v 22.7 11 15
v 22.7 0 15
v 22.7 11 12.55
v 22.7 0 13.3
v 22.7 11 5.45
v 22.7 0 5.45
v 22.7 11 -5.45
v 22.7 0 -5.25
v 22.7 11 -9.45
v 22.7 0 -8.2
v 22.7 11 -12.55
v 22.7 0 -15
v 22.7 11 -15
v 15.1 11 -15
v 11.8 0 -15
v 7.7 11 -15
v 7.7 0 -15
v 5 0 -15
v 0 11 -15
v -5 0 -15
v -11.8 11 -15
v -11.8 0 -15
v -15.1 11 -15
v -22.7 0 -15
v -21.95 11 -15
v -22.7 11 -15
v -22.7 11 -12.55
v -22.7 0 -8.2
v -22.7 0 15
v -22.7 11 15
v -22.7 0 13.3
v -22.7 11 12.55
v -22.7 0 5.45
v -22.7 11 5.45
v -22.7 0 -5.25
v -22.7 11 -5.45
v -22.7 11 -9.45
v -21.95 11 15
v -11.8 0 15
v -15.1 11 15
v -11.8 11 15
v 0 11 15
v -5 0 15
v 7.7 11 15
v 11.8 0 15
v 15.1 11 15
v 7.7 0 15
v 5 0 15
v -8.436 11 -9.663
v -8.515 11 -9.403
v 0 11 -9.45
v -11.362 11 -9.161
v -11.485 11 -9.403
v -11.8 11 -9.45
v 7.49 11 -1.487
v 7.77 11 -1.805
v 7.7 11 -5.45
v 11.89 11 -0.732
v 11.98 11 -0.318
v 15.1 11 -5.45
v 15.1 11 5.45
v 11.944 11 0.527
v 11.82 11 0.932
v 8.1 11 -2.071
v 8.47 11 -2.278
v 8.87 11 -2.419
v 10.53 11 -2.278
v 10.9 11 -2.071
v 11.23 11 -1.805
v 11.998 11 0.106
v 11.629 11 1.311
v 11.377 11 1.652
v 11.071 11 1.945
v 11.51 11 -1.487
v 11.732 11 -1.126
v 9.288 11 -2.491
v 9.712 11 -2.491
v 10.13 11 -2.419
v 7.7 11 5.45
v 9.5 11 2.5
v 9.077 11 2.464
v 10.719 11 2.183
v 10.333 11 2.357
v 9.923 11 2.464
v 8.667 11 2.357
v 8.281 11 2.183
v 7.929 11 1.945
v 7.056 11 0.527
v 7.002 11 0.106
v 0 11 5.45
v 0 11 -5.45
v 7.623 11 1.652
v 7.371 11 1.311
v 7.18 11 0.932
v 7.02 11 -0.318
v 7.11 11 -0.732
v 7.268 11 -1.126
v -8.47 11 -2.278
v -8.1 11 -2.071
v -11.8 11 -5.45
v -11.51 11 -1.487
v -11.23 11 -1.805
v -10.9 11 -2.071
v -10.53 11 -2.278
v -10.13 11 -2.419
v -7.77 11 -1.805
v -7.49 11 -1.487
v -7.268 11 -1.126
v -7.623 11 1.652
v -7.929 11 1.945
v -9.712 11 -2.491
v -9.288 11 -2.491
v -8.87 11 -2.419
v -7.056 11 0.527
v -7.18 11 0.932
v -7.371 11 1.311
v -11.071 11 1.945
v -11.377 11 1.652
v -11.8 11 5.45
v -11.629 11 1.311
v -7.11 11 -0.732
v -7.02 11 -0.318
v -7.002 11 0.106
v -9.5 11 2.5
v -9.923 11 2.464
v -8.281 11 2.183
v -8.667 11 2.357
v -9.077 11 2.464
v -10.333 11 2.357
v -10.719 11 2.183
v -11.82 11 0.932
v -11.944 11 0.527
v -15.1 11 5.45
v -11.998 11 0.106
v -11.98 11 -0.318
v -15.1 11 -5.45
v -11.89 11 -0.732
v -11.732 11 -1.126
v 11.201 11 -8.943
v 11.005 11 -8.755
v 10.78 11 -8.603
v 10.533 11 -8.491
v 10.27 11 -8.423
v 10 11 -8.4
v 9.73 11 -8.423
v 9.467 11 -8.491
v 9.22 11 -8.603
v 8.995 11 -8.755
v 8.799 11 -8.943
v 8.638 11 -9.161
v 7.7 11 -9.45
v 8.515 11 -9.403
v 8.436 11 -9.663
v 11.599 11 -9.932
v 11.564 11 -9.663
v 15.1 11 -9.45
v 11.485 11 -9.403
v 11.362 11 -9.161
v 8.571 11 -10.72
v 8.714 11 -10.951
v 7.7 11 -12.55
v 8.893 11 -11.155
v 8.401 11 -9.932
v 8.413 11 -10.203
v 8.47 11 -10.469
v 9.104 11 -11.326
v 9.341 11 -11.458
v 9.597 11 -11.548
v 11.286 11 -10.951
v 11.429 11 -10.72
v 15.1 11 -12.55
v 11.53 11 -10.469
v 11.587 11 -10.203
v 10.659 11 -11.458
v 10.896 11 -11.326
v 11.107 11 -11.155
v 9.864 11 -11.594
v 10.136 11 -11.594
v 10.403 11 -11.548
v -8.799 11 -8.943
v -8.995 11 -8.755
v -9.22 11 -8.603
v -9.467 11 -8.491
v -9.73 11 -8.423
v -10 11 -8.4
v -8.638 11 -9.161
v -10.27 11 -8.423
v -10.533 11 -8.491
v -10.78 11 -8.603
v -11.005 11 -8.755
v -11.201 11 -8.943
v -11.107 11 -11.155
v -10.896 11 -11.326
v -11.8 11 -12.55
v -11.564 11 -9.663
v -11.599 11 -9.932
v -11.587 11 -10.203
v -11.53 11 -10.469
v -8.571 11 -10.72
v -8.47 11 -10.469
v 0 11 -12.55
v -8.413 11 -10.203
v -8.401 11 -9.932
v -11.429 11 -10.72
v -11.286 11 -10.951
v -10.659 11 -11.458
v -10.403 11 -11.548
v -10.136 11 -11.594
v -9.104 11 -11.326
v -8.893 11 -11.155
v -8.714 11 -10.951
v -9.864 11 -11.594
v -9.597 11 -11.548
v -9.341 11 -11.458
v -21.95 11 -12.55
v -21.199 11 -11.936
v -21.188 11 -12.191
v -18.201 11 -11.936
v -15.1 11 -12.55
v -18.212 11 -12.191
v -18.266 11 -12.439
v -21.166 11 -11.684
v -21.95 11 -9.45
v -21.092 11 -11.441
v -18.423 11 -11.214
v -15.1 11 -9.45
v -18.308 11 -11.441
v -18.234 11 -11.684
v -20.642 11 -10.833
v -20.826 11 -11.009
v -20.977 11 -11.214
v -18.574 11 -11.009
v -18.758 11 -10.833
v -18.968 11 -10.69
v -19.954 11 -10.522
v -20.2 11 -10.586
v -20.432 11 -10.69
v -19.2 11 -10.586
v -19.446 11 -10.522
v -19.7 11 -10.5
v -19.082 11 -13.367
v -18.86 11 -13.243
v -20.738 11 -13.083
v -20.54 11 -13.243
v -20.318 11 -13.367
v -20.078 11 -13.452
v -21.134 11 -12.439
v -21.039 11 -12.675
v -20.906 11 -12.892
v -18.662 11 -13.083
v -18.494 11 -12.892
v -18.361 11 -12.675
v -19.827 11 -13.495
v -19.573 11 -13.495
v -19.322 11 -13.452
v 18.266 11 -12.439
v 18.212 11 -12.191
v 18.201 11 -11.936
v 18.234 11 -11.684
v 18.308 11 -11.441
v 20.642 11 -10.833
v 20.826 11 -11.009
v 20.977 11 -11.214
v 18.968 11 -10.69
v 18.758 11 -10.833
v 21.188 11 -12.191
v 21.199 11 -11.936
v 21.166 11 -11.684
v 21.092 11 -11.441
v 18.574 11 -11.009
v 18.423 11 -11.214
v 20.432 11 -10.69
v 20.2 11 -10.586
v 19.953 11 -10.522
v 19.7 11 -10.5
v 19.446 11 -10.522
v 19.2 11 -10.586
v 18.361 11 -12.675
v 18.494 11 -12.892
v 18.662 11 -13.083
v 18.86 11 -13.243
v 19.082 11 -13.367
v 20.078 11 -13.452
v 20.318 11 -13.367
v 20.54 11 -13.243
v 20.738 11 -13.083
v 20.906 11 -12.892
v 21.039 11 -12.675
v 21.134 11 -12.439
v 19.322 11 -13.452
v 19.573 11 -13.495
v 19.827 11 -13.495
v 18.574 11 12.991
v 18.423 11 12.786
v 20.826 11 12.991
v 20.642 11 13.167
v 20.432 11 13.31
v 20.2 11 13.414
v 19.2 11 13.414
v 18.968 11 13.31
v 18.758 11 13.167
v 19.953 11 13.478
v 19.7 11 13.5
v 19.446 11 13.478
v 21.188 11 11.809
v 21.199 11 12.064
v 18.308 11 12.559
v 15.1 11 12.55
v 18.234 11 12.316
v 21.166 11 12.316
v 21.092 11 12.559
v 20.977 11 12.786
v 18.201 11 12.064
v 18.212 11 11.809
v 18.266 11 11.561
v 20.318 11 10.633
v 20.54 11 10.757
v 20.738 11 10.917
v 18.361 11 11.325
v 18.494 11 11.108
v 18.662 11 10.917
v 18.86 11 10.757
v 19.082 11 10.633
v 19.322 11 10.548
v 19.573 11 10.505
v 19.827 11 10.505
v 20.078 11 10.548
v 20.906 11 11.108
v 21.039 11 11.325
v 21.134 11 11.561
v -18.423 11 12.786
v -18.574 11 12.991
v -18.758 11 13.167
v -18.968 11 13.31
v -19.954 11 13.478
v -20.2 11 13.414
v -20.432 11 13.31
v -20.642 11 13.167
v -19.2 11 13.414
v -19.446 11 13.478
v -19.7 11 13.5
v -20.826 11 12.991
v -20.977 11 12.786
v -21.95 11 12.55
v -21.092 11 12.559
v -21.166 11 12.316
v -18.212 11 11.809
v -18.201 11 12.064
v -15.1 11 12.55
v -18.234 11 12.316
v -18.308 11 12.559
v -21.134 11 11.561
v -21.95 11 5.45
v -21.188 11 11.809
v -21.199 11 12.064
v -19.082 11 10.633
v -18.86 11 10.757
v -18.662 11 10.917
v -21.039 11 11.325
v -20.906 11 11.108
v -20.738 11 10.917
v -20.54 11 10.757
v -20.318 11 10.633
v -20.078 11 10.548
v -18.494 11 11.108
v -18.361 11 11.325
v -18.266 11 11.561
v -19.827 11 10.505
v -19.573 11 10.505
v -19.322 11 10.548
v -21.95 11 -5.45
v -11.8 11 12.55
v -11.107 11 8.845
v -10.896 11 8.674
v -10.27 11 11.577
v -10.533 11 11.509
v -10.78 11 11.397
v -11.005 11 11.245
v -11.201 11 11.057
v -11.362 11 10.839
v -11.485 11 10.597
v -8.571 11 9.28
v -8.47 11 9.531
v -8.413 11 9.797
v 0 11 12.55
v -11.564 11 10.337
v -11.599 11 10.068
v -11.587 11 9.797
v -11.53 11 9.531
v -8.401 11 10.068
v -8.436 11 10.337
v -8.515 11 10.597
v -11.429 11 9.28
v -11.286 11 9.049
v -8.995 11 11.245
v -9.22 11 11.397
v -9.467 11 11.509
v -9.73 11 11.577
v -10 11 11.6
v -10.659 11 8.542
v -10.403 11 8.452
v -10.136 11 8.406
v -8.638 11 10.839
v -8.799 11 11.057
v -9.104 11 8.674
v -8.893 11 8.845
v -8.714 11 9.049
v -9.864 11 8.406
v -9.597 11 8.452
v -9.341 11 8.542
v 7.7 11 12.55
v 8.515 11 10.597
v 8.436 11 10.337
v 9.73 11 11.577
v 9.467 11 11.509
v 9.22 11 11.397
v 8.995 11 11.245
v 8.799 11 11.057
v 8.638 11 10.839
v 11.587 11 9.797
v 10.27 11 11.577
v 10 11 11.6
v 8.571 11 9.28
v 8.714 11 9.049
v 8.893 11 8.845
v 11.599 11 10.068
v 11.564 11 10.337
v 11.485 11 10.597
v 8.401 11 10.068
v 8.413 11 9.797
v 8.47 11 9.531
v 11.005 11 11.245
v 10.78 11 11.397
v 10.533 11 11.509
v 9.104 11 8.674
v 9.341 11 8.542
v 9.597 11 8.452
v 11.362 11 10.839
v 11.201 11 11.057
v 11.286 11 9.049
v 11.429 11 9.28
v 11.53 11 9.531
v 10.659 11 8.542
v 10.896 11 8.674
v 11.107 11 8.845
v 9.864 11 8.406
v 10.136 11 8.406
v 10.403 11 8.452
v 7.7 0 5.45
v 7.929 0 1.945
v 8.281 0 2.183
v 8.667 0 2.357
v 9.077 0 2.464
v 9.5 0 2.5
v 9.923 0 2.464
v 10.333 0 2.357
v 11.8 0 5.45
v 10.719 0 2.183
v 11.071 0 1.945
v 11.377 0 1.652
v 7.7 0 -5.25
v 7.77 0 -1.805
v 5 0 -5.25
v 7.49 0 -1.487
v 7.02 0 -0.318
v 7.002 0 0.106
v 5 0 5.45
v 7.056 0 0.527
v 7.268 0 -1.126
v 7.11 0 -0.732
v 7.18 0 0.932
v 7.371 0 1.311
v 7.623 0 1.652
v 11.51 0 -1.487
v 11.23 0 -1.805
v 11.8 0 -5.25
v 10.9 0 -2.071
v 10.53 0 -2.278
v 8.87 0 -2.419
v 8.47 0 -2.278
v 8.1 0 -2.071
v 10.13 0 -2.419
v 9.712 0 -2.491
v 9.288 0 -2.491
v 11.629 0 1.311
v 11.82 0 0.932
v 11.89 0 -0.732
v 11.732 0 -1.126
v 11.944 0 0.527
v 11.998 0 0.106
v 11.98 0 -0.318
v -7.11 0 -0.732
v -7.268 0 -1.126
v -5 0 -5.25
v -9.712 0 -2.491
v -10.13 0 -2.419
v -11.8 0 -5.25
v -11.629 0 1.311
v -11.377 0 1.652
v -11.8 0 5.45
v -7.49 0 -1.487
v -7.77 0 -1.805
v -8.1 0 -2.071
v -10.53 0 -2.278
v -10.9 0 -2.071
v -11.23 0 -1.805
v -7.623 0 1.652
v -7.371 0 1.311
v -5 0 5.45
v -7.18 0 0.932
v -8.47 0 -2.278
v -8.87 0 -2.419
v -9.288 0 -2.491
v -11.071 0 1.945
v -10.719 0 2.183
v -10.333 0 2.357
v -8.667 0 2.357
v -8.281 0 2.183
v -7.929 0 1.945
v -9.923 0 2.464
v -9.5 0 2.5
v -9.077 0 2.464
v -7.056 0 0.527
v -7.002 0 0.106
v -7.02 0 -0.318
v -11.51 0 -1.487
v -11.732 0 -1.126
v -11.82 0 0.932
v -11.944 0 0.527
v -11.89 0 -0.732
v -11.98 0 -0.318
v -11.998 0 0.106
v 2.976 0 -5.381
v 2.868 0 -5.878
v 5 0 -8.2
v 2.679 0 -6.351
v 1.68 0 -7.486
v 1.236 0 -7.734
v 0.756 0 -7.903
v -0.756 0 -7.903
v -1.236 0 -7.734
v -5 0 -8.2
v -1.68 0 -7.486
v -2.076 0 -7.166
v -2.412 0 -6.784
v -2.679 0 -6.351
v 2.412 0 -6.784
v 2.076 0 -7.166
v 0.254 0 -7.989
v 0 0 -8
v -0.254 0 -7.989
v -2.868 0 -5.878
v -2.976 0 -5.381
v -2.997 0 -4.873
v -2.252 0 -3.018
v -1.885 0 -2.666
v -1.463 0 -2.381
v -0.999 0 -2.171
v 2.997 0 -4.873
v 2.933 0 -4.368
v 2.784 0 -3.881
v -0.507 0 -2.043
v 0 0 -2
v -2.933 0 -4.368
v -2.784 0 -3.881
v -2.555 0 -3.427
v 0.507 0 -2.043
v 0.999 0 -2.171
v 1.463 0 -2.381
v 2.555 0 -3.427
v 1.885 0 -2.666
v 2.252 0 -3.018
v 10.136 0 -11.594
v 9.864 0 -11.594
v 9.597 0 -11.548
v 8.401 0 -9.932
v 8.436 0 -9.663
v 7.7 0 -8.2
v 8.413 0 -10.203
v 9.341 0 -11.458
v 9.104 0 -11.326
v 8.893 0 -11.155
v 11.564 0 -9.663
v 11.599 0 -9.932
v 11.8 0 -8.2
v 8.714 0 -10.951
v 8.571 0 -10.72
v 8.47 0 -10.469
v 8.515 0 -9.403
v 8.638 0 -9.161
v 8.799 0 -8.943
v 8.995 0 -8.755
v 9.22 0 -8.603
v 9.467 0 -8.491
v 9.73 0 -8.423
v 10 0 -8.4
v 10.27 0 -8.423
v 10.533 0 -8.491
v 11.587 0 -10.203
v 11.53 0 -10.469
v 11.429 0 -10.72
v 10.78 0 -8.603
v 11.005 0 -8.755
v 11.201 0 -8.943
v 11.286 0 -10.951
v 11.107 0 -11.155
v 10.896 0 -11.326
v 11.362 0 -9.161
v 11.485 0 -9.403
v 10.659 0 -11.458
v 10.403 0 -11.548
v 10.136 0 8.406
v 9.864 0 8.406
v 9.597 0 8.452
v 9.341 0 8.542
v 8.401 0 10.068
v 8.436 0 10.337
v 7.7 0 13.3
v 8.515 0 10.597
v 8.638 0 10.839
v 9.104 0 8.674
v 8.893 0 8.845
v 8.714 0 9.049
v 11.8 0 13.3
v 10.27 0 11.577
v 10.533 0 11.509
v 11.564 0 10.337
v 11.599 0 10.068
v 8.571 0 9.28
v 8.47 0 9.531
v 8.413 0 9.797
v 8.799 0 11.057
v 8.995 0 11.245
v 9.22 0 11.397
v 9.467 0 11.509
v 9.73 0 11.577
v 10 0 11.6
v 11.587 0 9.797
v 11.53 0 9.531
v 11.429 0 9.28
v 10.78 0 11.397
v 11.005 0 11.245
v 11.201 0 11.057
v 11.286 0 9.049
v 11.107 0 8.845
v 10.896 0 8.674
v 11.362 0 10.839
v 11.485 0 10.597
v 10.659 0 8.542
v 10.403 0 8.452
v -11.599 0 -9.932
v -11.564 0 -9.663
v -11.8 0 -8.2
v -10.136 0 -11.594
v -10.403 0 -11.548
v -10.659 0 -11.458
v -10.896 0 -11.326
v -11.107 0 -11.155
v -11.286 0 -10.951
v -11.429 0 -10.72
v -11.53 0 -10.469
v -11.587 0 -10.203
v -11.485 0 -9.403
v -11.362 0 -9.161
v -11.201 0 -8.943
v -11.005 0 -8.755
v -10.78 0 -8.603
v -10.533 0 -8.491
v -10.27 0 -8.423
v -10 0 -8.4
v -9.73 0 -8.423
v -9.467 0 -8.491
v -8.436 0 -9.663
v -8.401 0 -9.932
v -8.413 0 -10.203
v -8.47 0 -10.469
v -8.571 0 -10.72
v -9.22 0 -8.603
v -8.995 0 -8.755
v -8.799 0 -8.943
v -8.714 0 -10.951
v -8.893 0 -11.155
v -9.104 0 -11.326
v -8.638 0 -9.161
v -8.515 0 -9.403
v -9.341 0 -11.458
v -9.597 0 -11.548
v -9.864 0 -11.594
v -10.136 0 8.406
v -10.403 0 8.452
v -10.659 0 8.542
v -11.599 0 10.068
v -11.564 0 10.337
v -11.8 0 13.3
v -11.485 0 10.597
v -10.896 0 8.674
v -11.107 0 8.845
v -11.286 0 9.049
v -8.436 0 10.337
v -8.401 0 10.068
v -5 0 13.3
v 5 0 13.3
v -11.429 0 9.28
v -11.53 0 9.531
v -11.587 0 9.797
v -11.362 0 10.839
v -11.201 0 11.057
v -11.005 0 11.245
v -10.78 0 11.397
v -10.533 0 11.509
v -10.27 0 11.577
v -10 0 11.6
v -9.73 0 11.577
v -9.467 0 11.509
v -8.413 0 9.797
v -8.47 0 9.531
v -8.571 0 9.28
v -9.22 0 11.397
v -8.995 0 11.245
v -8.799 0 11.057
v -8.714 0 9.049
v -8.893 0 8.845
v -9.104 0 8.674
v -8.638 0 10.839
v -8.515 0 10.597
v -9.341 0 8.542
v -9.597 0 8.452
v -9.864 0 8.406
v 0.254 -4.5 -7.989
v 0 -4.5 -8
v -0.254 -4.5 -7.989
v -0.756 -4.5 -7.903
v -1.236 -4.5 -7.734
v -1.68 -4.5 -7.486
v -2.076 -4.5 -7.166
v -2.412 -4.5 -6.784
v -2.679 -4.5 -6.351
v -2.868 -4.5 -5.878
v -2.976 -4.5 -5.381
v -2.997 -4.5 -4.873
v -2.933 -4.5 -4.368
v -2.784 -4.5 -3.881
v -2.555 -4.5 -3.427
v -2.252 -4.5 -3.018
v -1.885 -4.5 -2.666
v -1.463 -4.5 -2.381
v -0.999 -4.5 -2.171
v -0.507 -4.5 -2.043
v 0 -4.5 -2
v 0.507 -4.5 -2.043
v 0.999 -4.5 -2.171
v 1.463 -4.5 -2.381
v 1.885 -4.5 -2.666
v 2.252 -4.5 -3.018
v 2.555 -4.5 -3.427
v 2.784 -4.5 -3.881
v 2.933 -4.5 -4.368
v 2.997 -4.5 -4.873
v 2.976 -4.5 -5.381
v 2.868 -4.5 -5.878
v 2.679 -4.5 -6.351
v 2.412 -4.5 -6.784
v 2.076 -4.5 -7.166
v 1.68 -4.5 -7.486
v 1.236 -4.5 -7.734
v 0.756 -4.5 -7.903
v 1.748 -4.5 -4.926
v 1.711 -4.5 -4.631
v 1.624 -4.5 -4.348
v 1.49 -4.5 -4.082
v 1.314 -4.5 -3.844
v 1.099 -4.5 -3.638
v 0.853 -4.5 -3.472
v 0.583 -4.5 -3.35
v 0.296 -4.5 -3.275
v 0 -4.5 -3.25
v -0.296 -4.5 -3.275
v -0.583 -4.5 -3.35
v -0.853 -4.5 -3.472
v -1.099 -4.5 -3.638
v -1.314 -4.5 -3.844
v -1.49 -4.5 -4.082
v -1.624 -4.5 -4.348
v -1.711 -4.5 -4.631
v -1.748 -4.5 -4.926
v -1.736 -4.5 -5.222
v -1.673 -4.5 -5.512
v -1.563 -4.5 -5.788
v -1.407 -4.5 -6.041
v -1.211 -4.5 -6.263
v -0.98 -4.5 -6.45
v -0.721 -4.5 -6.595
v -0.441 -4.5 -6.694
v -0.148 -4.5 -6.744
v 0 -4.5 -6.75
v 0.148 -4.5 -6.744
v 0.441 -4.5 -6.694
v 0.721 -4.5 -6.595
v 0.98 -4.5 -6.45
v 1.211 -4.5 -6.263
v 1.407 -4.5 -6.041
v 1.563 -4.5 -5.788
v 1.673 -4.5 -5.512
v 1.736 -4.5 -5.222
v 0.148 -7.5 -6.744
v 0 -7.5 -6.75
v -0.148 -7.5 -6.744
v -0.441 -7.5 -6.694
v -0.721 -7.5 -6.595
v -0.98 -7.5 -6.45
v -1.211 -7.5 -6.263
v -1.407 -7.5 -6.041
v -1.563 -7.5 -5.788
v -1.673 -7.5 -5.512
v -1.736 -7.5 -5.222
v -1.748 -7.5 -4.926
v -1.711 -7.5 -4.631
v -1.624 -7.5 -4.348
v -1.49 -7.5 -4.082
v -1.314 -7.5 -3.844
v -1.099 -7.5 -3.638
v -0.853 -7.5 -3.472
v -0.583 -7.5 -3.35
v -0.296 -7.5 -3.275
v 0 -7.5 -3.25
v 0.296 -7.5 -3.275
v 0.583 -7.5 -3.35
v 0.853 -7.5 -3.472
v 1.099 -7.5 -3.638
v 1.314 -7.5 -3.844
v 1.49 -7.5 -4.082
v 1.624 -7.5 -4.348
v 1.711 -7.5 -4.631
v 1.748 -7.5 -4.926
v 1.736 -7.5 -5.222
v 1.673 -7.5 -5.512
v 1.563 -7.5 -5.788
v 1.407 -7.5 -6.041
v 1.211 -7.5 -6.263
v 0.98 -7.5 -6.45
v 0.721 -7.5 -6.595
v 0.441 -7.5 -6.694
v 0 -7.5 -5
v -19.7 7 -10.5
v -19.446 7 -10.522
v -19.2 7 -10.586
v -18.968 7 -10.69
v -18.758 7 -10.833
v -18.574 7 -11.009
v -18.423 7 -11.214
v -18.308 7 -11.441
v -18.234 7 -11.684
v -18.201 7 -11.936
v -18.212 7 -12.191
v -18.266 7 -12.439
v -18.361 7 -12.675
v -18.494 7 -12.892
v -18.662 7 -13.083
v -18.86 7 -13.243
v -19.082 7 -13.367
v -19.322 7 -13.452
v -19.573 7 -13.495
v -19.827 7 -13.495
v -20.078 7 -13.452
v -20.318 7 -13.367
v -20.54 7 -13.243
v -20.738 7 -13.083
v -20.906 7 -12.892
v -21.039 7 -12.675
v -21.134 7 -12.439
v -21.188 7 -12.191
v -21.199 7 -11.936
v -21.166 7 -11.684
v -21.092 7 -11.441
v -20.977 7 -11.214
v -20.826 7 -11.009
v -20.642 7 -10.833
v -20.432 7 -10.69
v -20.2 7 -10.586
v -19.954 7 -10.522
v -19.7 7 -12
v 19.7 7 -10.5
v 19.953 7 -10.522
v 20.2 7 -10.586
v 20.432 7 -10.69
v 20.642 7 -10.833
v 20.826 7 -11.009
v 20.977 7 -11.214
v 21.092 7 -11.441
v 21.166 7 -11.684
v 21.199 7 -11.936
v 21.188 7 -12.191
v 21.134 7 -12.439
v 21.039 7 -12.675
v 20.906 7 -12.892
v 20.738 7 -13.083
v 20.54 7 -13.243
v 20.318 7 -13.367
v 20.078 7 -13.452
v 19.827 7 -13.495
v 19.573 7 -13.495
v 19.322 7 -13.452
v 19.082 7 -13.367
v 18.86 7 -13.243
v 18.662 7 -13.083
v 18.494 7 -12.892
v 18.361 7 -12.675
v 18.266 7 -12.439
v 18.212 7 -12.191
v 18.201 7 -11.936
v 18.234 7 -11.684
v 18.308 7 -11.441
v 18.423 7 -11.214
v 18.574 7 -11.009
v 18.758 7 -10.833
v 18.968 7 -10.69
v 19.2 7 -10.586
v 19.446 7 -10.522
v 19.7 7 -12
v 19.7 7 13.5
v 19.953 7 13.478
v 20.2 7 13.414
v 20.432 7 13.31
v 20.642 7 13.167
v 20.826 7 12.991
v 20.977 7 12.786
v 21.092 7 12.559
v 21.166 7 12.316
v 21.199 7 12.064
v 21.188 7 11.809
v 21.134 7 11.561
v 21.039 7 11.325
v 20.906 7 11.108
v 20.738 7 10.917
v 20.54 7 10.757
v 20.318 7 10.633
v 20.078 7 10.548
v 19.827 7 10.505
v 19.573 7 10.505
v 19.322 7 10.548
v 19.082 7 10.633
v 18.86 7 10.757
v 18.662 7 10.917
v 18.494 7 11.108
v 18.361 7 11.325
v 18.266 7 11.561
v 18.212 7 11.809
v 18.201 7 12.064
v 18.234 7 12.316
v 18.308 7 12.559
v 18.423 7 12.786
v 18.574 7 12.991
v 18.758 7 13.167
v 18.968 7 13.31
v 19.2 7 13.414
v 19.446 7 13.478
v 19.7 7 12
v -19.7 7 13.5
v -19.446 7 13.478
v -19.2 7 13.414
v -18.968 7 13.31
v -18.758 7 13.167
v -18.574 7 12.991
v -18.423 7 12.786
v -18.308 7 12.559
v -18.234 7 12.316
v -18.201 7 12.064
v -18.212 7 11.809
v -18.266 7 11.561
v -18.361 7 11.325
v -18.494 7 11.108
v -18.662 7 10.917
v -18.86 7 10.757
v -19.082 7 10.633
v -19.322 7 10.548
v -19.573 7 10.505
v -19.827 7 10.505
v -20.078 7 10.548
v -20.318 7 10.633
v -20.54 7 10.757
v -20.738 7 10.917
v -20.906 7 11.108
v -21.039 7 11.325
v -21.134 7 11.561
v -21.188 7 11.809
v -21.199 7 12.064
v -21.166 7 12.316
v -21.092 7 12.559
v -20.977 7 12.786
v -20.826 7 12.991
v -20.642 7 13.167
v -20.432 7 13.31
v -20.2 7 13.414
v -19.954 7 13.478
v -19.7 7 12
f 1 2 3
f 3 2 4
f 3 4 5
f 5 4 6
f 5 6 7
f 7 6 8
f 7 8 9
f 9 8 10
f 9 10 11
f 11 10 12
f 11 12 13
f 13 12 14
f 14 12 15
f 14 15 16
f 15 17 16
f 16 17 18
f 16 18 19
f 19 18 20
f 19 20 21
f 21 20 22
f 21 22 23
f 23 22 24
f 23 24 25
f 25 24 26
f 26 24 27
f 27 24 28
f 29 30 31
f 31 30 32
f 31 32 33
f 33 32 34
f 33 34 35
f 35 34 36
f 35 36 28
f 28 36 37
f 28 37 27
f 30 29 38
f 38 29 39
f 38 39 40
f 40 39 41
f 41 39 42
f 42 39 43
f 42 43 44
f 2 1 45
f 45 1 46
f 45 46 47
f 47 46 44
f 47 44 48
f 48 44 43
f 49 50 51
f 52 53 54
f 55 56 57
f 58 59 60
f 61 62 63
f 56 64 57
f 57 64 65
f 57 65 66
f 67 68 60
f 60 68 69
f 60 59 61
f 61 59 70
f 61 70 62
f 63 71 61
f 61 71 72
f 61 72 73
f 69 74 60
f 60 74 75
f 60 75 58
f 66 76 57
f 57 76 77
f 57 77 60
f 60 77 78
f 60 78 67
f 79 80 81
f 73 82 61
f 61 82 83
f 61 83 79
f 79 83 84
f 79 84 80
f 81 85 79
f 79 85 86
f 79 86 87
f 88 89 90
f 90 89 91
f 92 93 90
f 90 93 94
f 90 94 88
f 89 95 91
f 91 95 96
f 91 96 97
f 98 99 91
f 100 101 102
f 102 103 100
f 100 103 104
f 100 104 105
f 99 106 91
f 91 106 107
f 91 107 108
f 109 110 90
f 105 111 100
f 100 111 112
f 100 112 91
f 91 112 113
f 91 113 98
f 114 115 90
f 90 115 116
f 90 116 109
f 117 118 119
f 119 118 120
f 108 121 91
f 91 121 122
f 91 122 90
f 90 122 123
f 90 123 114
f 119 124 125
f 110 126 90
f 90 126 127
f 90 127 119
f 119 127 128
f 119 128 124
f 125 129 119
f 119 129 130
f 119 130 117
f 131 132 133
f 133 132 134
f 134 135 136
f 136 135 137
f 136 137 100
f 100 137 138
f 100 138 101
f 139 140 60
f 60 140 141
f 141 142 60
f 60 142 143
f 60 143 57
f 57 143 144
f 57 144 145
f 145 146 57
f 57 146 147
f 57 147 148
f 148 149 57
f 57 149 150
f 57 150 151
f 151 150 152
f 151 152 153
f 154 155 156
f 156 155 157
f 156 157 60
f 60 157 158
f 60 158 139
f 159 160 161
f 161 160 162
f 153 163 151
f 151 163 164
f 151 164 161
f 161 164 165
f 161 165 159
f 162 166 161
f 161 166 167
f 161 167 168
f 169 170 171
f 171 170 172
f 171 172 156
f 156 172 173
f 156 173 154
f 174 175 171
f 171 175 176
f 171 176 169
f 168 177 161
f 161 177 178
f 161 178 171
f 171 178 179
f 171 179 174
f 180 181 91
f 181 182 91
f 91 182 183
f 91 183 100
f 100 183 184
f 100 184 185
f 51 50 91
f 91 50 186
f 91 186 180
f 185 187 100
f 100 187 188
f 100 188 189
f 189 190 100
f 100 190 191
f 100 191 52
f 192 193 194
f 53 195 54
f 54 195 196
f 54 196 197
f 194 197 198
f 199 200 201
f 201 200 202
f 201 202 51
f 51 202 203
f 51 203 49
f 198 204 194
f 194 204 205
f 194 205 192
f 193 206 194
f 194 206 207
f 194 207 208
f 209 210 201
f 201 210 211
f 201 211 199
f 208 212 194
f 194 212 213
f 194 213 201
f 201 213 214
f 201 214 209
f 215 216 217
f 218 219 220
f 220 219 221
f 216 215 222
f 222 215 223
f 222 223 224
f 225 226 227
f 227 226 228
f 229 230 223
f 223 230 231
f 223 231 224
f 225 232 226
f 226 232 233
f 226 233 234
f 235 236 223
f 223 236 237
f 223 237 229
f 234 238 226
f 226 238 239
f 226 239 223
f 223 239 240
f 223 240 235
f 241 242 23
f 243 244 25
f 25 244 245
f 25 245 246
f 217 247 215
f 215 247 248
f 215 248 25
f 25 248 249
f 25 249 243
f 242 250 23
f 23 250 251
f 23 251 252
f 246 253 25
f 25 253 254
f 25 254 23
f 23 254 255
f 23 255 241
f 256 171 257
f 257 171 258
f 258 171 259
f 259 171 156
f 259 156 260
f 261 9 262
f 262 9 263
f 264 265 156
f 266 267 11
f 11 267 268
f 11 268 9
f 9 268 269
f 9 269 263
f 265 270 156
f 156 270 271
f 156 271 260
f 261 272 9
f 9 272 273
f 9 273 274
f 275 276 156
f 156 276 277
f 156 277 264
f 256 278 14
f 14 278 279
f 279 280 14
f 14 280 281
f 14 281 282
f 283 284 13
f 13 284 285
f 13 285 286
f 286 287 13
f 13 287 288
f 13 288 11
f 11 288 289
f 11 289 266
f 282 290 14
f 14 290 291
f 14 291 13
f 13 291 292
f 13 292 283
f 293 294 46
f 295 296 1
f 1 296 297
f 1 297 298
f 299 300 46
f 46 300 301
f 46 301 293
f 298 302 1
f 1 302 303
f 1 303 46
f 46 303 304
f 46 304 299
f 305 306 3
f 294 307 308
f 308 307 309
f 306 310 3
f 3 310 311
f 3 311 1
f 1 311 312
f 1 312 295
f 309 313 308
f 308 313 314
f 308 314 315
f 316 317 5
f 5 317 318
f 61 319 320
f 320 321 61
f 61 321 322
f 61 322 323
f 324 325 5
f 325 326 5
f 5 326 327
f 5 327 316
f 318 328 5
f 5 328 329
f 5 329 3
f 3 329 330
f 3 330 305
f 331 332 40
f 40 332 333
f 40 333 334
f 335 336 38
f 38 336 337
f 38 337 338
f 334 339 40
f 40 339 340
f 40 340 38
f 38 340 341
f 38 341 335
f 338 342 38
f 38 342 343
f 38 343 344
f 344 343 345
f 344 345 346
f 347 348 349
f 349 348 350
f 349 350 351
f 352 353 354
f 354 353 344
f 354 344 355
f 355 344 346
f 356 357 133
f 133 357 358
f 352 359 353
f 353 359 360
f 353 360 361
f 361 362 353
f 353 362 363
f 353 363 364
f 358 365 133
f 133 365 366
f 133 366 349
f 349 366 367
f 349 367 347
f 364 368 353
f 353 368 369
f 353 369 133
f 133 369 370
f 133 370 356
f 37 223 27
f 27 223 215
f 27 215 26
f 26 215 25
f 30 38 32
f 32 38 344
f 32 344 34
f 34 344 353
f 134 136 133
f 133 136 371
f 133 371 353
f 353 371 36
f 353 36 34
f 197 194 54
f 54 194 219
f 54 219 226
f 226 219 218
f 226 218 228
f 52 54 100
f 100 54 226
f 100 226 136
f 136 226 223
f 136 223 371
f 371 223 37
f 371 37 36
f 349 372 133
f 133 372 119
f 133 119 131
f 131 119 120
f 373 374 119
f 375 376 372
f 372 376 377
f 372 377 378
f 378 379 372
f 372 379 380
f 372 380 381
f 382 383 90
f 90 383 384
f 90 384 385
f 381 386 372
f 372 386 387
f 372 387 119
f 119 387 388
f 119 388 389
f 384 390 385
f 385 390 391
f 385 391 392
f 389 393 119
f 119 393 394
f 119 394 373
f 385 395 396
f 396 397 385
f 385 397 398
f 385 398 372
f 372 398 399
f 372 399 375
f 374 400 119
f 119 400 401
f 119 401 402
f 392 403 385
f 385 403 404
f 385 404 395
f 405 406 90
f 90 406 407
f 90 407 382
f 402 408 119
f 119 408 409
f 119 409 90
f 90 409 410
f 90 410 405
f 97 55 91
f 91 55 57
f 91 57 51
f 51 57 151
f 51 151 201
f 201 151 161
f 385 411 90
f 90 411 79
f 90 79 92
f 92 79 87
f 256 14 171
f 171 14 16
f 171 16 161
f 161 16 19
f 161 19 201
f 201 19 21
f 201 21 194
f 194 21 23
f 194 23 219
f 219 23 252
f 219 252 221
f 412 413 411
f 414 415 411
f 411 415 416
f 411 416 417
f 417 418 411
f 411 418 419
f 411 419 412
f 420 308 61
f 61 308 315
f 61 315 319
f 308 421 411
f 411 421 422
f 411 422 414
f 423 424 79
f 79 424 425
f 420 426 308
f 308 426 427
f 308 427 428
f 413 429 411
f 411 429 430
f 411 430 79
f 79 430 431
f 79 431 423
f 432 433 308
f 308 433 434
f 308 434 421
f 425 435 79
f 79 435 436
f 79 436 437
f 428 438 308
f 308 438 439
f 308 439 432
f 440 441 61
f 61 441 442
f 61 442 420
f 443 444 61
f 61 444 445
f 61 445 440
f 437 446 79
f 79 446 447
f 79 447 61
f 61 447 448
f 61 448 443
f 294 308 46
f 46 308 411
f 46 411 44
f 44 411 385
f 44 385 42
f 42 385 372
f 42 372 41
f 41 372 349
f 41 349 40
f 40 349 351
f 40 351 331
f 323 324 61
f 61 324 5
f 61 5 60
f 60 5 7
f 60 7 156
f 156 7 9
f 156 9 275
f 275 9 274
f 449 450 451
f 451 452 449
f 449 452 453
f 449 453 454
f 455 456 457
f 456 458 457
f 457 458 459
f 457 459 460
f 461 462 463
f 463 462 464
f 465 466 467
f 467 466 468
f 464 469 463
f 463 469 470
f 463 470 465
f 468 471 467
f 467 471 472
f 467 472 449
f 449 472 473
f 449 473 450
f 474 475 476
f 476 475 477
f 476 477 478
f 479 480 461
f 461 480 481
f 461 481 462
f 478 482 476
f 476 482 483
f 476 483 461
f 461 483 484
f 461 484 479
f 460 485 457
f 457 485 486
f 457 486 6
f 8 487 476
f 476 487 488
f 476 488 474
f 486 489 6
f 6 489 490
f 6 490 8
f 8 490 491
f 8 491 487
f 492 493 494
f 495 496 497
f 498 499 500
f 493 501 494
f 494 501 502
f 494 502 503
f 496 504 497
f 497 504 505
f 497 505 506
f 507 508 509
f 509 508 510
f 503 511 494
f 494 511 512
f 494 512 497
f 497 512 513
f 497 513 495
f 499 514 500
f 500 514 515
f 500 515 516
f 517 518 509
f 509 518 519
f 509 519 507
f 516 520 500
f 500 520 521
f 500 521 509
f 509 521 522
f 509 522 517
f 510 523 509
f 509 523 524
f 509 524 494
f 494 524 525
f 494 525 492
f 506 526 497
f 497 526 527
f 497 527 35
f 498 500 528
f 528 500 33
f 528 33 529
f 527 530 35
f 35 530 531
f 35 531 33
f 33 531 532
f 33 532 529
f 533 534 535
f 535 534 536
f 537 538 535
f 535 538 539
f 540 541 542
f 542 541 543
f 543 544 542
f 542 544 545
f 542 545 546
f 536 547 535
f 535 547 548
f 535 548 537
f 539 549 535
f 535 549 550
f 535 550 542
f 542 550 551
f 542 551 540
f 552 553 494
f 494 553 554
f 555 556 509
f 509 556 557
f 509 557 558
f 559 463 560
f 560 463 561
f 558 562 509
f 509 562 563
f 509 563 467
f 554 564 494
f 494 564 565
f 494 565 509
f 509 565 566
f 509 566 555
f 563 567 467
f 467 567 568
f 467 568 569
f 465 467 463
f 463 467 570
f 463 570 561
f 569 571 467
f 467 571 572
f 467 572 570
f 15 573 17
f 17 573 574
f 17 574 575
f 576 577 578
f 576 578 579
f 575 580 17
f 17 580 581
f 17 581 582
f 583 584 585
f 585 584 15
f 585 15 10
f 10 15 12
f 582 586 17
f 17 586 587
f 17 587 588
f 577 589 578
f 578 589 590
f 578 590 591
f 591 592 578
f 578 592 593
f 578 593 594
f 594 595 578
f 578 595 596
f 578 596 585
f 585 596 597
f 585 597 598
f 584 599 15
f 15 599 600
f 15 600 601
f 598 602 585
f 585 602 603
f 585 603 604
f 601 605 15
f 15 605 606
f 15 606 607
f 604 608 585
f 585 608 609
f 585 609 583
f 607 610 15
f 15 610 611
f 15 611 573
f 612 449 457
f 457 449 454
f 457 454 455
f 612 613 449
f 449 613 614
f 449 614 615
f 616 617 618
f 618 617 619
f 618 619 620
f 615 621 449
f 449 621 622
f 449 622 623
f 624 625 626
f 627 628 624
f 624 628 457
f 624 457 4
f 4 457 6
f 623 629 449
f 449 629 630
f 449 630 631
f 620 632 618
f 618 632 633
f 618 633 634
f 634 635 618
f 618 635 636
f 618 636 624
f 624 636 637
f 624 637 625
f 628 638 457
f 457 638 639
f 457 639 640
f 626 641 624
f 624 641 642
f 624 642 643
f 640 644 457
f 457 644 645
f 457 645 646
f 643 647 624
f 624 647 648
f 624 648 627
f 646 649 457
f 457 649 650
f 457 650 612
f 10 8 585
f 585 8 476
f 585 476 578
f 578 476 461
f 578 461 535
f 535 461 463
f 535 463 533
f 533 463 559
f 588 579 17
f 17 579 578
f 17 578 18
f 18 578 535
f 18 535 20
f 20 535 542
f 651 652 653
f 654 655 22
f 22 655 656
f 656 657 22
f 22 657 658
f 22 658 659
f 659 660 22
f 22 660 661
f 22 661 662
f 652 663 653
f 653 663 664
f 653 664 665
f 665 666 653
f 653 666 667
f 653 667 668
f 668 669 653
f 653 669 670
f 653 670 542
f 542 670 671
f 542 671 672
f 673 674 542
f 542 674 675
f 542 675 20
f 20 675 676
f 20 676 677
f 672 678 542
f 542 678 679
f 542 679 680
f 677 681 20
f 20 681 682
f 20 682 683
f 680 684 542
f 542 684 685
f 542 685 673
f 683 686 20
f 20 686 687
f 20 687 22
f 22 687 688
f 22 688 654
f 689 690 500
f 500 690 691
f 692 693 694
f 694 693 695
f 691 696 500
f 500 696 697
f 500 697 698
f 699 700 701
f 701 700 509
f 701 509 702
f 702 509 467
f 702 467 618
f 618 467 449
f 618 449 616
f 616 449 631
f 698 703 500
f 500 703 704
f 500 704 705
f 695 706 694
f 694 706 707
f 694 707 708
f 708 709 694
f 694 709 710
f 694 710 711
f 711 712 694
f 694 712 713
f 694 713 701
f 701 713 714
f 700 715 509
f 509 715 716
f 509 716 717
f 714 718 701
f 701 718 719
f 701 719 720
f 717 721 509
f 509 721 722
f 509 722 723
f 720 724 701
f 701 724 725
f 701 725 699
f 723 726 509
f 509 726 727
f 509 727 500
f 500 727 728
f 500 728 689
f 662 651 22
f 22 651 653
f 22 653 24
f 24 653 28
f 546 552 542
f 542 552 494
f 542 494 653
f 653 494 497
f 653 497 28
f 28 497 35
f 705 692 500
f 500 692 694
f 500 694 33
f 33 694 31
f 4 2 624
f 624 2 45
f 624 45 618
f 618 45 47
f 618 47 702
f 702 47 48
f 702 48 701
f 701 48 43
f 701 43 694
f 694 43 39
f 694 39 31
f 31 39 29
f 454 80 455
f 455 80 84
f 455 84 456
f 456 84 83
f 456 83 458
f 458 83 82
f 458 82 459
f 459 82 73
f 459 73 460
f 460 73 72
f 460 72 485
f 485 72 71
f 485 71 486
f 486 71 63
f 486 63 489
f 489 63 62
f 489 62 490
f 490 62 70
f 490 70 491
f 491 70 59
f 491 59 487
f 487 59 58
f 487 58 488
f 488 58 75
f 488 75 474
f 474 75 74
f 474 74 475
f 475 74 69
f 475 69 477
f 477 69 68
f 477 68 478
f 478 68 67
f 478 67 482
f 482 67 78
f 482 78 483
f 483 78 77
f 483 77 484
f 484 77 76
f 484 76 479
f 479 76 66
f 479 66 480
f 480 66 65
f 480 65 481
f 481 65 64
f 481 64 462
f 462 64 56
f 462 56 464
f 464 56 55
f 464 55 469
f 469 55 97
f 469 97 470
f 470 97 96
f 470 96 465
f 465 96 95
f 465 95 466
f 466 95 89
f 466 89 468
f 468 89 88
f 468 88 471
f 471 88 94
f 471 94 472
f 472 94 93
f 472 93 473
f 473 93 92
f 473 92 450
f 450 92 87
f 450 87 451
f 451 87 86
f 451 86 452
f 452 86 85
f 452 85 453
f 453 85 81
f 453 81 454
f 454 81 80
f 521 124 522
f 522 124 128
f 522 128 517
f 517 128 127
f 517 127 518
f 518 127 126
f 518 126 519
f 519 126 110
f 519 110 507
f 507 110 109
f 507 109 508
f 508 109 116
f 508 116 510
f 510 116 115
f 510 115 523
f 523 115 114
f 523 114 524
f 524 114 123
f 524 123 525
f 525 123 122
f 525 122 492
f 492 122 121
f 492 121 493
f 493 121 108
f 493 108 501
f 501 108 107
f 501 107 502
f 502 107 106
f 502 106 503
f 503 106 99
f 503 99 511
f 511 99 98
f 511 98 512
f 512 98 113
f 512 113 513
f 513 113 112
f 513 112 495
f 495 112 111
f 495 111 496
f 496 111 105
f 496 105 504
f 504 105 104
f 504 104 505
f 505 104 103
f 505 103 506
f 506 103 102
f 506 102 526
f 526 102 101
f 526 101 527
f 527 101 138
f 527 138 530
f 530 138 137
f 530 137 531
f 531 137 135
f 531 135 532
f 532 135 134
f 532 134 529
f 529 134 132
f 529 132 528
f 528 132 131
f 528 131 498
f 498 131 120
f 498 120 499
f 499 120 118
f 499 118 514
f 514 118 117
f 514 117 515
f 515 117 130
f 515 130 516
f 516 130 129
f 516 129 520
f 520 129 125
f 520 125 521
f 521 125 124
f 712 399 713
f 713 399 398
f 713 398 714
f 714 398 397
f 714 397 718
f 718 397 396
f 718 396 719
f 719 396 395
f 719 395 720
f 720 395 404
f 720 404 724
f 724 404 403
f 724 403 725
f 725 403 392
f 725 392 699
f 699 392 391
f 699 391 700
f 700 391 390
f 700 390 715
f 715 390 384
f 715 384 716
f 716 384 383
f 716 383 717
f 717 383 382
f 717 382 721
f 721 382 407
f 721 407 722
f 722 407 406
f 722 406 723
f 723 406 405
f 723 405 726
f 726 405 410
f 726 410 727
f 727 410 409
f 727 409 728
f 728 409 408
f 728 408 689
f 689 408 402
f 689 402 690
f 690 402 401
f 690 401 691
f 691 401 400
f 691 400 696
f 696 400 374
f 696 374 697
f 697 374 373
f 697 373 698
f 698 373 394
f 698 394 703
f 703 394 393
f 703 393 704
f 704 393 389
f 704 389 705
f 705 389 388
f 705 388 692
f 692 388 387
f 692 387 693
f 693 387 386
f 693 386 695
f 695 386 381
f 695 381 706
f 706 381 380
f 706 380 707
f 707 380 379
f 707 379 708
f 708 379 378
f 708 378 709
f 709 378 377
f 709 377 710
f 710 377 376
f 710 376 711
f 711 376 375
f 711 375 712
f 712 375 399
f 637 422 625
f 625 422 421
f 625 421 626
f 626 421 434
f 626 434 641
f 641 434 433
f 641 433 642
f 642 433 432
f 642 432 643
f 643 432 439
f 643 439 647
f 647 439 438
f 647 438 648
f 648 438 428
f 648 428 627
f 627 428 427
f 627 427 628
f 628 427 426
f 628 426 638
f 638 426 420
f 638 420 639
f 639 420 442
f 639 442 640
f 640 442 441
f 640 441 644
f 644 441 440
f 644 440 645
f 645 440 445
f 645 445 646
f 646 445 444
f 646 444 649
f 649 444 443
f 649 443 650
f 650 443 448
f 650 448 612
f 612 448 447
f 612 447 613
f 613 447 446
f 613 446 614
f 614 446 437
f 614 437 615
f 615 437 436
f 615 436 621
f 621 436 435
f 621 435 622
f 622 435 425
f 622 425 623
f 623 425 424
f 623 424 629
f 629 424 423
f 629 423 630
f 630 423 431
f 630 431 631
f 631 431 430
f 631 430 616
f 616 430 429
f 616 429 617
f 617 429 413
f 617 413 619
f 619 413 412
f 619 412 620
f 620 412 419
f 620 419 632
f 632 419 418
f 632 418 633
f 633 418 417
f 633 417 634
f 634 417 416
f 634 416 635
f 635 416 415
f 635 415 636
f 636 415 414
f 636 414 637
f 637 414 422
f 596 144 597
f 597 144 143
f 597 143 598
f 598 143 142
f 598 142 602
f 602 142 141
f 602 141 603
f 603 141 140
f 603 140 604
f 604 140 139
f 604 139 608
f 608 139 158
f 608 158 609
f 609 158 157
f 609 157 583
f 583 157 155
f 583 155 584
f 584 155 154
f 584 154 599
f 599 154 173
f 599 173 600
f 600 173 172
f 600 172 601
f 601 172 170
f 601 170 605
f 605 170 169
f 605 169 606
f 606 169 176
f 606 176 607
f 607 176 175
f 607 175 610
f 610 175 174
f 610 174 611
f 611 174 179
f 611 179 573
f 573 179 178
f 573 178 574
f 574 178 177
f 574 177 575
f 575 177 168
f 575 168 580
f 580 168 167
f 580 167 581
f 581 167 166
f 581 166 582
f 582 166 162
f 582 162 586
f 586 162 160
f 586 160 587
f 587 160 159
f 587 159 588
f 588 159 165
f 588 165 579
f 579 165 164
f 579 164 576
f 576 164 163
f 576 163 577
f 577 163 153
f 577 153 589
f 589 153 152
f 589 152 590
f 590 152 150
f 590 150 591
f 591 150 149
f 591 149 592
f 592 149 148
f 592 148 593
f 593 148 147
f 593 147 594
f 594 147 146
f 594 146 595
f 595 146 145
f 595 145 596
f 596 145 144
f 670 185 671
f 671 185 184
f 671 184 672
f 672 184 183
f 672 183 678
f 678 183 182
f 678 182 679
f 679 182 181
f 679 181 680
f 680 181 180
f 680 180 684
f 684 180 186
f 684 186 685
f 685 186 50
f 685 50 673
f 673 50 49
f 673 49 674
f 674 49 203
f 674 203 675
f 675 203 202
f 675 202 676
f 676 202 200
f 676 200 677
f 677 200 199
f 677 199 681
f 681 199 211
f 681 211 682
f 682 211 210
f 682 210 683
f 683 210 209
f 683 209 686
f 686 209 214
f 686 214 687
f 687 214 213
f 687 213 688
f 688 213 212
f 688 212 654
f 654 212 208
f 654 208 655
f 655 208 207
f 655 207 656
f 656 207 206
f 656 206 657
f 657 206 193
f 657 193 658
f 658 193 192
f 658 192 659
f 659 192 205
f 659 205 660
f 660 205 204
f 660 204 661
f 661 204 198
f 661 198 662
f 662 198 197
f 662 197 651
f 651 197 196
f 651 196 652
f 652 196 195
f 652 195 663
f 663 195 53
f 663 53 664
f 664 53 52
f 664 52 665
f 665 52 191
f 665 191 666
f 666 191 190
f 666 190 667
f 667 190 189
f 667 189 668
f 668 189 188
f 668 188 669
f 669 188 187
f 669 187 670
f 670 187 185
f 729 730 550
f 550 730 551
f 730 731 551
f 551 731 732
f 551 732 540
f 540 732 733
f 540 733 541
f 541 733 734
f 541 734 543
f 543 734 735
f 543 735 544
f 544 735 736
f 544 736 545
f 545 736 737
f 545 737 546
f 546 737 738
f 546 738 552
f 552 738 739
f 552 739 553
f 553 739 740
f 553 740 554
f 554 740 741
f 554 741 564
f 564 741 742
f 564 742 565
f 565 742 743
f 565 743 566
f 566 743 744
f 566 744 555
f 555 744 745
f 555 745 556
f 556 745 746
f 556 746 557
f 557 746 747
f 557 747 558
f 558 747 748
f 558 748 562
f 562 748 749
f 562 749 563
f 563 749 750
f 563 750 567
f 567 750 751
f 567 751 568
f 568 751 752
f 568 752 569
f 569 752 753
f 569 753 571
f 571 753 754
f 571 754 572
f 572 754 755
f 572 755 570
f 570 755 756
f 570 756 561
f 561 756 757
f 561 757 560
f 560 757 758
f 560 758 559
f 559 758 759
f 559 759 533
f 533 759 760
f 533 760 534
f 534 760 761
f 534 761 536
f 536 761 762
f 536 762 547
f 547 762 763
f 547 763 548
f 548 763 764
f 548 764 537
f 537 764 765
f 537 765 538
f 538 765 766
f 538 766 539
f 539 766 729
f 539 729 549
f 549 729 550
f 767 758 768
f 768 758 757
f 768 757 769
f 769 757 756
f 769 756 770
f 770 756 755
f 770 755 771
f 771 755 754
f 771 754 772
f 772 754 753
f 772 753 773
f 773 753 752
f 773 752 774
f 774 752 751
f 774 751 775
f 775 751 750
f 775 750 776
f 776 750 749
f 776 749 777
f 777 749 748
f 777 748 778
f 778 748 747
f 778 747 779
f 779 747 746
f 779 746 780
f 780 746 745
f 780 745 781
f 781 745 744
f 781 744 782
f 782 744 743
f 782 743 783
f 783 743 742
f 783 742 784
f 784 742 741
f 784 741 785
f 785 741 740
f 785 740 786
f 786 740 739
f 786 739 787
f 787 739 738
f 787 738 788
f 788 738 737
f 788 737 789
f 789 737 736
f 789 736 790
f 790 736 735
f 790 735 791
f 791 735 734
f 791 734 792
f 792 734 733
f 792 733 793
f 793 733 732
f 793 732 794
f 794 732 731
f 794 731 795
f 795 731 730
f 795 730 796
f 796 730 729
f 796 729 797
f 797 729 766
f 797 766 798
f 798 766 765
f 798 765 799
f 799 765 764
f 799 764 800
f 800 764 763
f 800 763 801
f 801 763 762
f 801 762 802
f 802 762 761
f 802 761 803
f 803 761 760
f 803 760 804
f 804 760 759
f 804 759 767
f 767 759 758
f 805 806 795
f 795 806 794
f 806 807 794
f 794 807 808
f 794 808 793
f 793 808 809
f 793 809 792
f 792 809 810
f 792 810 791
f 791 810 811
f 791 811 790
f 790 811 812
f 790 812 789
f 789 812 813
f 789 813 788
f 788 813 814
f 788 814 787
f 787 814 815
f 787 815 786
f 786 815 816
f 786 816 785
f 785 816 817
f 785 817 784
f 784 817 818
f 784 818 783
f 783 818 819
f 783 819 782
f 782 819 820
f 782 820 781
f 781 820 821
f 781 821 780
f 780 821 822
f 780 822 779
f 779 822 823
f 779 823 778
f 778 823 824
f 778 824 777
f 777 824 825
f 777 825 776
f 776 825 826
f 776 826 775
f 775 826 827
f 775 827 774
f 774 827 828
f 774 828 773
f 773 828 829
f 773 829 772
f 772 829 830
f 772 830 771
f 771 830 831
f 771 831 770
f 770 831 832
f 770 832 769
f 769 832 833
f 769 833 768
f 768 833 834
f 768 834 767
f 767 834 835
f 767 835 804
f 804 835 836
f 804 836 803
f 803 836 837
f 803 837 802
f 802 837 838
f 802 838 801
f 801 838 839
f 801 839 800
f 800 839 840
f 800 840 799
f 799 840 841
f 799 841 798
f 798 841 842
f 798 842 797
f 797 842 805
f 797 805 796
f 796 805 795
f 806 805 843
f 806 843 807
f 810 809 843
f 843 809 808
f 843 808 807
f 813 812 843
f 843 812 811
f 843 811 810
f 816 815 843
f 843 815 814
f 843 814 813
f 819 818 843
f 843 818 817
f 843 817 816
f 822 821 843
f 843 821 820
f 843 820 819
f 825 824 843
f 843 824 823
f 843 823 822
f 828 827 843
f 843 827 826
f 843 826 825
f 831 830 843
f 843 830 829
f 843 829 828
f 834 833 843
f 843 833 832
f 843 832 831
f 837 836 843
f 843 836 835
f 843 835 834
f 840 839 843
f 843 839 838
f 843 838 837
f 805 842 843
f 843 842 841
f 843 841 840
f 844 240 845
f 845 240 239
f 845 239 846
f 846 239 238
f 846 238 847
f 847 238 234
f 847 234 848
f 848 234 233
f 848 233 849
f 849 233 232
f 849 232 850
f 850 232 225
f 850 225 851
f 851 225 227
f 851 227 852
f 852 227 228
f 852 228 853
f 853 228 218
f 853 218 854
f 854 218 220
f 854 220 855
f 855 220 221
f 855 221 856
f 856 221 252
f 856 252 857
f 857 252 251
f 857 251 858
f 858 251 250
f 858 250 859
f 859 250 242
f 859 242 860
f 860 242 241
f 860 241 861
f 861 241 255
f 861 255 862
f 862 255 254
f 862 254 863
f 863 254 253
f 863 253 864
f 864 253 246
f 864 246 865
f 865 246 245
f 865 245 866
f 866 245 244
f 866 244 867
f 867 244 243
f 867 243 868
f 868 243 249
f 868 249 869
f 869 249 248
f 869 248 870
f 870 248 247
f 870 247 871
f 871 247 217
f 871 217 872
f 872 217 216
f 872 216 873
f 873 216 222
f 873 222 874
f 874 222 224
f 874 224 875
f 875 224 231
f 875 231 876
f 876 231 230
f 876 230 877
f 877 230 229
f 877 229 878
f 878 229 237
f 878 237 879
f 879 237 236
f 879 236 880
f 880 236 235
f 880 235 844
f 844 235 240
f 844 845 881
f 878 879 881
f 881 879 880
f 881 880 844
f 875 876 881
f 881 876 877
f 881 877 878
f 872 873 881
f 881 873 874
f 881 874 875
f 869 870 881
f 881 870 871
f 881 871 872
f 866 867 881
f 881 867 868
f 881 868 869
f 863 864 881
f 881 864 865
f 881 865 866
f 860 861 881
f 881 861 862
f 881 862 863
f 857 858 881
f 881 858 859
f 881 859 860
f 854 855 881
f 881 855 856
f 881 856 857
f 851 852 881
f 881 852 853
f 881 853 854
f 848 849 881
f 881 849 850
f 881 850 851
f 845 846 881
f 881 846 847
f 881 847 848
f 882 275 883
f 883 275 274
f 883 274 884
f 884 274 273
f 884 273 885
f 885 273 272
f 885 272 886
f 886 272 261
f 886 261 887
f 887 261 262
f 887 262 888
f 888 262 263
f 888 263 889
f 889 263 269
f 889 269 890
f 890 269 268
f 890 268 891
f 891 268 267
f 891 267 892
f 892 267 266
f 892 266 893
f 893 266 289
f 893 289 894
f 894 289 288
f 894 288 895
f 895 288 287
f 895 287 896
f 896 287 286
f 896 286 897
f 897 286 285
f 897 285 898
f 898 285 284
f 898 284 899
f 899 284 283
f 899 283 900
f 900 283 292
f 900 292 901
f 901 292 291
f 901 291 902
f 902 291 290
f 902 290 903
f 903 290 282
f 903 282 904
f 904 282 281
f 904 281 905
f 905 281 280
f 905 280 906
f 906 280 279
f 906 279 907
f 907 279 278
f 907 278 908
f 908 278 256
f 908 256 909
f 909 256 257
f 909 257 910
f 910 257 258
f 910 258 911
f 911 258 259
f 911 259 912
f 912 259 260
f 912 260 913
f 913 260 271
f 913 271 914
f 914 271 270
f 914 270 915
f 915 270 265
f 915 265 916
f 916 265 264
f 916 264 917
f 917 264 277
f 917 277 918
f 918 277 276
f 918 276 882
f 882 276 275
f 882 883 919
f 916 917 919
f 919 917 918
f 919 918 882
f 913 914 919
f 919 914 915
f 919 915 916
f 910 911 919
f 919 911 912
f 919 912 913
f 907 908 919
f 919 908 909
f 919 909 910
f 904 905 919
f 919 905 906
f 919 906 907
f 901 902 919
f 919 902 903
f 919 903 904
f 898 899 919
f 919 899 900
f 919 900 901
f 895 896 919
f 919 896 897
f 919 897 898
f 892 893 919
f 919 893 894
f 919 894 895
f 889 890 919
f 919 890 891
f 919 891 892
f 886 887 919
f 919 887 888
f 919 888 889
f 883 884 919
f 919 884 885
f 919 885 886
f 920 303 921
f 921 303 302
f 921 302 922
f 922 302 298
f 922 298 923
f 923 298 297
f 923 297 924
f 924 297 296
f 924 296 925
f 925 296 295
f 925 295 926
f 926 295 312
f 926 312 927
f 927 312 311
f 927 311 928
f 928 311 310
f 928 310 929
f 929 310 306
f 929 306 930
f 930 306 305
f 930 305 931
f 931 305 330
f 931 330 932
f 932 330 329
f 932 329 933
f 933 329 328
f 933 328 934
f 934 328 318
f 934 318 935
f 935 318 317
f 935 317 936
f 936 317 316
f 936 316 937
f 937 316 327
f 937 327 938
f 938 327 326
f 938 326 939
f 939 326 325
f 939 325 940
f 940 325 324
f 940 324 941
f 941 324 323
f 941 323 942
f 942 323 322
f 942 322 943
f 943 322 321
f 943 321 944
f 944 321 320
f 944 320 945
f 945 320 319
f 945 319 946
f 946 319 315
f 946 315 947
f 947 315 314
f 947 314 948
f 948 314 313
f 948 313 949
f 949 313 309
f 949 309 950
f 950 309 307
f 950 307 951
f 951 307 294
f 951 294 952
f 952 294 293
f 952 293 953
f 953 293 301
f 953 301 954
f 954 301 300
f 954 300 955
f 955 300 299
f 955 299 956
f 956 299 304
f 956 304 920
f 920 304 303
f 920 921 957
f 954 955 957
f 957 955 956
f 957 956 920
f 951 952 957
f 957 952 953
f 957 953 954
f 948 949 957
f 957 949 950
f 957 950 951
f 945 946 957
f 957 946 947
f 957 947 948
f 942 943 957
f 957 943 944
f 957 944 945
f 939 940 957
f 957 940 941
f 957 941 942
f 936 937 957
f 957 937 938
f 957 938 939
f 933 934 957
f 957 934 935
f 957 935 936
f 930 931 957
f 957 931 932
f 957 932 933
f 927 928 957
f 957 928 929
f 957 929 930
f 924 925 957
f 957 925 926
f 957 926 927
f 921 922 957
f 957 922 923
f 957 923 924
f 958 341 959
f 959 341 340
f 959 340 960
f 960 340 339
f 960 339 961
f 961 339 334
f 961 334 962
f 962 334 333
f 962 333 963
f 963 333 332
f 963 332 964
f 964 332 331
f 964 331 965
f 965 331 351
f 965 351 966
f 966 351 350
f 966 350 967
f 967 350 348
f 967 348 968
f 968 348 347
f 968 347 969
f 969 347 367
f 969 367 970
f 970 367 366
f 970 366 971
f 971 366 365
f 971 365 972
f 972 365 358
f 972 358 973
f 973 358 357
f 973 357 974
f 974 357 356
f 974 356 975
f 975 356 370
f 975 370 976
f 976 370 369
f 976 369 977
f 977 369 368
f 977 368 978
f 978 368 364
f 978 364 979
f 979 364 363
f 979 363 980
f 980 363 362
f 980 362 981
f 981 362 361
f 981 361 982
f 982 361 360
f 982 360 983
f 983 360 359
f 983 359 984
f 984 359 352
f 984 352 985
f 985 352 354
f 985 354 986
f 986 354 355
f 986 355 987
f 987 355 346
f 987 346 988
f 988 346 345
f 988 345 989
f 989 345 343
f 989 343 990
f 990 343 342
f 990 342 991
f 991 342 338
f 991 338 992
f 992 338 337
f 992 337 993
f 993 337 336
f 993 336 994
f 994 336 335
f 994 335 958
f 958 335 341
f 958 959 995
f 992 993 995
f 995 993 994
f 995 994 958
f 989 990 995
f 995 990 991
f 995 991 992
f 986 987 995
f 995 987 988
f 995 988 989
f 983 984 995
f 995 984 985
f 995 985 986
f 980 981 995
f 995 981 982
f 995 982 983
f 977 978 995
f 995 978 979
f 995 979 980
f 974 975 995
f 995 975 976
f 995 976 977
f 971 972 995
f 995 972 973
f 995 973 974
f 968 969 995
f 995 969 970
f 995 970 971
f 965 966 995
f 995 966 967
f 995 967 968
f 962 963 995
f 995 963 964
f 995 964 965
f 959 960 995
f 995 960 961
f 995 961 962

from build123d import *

# Parameters (mm, degrees)
SKETCH1_W             = 45.4
SKETCH1_H             = 30
BOSS_EXTRUDE1_DEPTH   = 11
SKETCH2_R             = 2.5
CUT_EXTRUDE1_DEPTH    = 30.347742673
F_3_0MM_DOWEL_HOLE1_D = 3.2
SKETCH5_R             = 3
BOSS_EXTRUDE2_DEPTH   = 4.5
SKETCH6_R             = 1.75
BOSS_EXTRUDE3_DEPTH   = 3
SKETCH7_R             = 1.5
CUT_EXTRUDE2_DEPTH    = 4


with BuildPart() as part:
    # Sketch1 → Boss-Extrude1 (new body)
    with BuildSketch(Plane(origin=(0, 0, 0), x_dir=(1, 0, 0), z_dir=(0, 1, 0))):
        Rectangle(SKETCH1_W, SKETCH1_H)
    extrude(amount=BOSS_EXTRUDE1_DEPTH)

    # Sketch2 → Cut-Extrude1 (cut, through all)
    with BuildSketch(Plane(origin=(0, 11, 0), x_dir=(1, 0, 0), z_dir=(0, 1, 0))):
        with Locations(Location((-9.5, 0, 0), (0, 0, 270))):
            Circle(SKETCH2_R)
        with Locations(Location((9.5, 0, 0), (0, 0, 270))):
            Circle(SKETCH2_R)
    extrude(amount=-CUT_EXTRUDE1_DEPTH, mode=Mode.SUBTRACT)

    # Ø3.0mm Dowel Hole1 (through all)
    with Locations(Plane(origin=(0, 11, 0), x_dir=(1, 0, 0), z_dir=(0, 1, 0))):
        with Locations((-10, 10), (10, 10), (10, -10), (-10, -10)):
            Hole(F_3_0MM_DOWEL_HOLE1_D / 2)

    # Sketch5 → Boss-Extrude2 (add)
    with BuildSketch(Plane.XZ):
        with Locations(Location((0, -5, 0), (0, 0, 270))):
            Circle(SKETCH5_R)
    extrude(amount=BOSS_EXTRUDE2_DEPTH)

    # Sketch6 → Boss-Extrude3 (add)
    with BuildSketch(Plane.XZ.offset(4.5)):
        with Locations(Location((0, -5, 0), (0, 0, 270))):
            Circle(SKETCH6_R)
    extrude(amount=BOSS_EXTRUDE3_DEPTH)

    # Sketch7 → Cut-Extrude2 (cut)
    with BuildSketch(Plane(origin=(0, 11, 0), x_dir=(1, 0, 0), z_dir=(0, 1, 0))):
        with Locations(Location((-19.7, 12, 0), (0, 0, 270))):
            Circle(SKETCH7_R)
        with Locations(Location((19.7, 12, 0), (0, 0, 270))):
            Circle(SKETCH7_R)
        with Locations(Location((19.7, -12, 0), (0, 0, 270))):
            Circle(SKETCH7_R)
        with Locations(Location((-19.7, -12, 0), (0, 0, 270))):
            Circle(SKETCH7_R)
    extrude(amount=-CUT_EXTRUDE2_DEPTH, mode=Mode.SUBTRACT)


solid = part.part
